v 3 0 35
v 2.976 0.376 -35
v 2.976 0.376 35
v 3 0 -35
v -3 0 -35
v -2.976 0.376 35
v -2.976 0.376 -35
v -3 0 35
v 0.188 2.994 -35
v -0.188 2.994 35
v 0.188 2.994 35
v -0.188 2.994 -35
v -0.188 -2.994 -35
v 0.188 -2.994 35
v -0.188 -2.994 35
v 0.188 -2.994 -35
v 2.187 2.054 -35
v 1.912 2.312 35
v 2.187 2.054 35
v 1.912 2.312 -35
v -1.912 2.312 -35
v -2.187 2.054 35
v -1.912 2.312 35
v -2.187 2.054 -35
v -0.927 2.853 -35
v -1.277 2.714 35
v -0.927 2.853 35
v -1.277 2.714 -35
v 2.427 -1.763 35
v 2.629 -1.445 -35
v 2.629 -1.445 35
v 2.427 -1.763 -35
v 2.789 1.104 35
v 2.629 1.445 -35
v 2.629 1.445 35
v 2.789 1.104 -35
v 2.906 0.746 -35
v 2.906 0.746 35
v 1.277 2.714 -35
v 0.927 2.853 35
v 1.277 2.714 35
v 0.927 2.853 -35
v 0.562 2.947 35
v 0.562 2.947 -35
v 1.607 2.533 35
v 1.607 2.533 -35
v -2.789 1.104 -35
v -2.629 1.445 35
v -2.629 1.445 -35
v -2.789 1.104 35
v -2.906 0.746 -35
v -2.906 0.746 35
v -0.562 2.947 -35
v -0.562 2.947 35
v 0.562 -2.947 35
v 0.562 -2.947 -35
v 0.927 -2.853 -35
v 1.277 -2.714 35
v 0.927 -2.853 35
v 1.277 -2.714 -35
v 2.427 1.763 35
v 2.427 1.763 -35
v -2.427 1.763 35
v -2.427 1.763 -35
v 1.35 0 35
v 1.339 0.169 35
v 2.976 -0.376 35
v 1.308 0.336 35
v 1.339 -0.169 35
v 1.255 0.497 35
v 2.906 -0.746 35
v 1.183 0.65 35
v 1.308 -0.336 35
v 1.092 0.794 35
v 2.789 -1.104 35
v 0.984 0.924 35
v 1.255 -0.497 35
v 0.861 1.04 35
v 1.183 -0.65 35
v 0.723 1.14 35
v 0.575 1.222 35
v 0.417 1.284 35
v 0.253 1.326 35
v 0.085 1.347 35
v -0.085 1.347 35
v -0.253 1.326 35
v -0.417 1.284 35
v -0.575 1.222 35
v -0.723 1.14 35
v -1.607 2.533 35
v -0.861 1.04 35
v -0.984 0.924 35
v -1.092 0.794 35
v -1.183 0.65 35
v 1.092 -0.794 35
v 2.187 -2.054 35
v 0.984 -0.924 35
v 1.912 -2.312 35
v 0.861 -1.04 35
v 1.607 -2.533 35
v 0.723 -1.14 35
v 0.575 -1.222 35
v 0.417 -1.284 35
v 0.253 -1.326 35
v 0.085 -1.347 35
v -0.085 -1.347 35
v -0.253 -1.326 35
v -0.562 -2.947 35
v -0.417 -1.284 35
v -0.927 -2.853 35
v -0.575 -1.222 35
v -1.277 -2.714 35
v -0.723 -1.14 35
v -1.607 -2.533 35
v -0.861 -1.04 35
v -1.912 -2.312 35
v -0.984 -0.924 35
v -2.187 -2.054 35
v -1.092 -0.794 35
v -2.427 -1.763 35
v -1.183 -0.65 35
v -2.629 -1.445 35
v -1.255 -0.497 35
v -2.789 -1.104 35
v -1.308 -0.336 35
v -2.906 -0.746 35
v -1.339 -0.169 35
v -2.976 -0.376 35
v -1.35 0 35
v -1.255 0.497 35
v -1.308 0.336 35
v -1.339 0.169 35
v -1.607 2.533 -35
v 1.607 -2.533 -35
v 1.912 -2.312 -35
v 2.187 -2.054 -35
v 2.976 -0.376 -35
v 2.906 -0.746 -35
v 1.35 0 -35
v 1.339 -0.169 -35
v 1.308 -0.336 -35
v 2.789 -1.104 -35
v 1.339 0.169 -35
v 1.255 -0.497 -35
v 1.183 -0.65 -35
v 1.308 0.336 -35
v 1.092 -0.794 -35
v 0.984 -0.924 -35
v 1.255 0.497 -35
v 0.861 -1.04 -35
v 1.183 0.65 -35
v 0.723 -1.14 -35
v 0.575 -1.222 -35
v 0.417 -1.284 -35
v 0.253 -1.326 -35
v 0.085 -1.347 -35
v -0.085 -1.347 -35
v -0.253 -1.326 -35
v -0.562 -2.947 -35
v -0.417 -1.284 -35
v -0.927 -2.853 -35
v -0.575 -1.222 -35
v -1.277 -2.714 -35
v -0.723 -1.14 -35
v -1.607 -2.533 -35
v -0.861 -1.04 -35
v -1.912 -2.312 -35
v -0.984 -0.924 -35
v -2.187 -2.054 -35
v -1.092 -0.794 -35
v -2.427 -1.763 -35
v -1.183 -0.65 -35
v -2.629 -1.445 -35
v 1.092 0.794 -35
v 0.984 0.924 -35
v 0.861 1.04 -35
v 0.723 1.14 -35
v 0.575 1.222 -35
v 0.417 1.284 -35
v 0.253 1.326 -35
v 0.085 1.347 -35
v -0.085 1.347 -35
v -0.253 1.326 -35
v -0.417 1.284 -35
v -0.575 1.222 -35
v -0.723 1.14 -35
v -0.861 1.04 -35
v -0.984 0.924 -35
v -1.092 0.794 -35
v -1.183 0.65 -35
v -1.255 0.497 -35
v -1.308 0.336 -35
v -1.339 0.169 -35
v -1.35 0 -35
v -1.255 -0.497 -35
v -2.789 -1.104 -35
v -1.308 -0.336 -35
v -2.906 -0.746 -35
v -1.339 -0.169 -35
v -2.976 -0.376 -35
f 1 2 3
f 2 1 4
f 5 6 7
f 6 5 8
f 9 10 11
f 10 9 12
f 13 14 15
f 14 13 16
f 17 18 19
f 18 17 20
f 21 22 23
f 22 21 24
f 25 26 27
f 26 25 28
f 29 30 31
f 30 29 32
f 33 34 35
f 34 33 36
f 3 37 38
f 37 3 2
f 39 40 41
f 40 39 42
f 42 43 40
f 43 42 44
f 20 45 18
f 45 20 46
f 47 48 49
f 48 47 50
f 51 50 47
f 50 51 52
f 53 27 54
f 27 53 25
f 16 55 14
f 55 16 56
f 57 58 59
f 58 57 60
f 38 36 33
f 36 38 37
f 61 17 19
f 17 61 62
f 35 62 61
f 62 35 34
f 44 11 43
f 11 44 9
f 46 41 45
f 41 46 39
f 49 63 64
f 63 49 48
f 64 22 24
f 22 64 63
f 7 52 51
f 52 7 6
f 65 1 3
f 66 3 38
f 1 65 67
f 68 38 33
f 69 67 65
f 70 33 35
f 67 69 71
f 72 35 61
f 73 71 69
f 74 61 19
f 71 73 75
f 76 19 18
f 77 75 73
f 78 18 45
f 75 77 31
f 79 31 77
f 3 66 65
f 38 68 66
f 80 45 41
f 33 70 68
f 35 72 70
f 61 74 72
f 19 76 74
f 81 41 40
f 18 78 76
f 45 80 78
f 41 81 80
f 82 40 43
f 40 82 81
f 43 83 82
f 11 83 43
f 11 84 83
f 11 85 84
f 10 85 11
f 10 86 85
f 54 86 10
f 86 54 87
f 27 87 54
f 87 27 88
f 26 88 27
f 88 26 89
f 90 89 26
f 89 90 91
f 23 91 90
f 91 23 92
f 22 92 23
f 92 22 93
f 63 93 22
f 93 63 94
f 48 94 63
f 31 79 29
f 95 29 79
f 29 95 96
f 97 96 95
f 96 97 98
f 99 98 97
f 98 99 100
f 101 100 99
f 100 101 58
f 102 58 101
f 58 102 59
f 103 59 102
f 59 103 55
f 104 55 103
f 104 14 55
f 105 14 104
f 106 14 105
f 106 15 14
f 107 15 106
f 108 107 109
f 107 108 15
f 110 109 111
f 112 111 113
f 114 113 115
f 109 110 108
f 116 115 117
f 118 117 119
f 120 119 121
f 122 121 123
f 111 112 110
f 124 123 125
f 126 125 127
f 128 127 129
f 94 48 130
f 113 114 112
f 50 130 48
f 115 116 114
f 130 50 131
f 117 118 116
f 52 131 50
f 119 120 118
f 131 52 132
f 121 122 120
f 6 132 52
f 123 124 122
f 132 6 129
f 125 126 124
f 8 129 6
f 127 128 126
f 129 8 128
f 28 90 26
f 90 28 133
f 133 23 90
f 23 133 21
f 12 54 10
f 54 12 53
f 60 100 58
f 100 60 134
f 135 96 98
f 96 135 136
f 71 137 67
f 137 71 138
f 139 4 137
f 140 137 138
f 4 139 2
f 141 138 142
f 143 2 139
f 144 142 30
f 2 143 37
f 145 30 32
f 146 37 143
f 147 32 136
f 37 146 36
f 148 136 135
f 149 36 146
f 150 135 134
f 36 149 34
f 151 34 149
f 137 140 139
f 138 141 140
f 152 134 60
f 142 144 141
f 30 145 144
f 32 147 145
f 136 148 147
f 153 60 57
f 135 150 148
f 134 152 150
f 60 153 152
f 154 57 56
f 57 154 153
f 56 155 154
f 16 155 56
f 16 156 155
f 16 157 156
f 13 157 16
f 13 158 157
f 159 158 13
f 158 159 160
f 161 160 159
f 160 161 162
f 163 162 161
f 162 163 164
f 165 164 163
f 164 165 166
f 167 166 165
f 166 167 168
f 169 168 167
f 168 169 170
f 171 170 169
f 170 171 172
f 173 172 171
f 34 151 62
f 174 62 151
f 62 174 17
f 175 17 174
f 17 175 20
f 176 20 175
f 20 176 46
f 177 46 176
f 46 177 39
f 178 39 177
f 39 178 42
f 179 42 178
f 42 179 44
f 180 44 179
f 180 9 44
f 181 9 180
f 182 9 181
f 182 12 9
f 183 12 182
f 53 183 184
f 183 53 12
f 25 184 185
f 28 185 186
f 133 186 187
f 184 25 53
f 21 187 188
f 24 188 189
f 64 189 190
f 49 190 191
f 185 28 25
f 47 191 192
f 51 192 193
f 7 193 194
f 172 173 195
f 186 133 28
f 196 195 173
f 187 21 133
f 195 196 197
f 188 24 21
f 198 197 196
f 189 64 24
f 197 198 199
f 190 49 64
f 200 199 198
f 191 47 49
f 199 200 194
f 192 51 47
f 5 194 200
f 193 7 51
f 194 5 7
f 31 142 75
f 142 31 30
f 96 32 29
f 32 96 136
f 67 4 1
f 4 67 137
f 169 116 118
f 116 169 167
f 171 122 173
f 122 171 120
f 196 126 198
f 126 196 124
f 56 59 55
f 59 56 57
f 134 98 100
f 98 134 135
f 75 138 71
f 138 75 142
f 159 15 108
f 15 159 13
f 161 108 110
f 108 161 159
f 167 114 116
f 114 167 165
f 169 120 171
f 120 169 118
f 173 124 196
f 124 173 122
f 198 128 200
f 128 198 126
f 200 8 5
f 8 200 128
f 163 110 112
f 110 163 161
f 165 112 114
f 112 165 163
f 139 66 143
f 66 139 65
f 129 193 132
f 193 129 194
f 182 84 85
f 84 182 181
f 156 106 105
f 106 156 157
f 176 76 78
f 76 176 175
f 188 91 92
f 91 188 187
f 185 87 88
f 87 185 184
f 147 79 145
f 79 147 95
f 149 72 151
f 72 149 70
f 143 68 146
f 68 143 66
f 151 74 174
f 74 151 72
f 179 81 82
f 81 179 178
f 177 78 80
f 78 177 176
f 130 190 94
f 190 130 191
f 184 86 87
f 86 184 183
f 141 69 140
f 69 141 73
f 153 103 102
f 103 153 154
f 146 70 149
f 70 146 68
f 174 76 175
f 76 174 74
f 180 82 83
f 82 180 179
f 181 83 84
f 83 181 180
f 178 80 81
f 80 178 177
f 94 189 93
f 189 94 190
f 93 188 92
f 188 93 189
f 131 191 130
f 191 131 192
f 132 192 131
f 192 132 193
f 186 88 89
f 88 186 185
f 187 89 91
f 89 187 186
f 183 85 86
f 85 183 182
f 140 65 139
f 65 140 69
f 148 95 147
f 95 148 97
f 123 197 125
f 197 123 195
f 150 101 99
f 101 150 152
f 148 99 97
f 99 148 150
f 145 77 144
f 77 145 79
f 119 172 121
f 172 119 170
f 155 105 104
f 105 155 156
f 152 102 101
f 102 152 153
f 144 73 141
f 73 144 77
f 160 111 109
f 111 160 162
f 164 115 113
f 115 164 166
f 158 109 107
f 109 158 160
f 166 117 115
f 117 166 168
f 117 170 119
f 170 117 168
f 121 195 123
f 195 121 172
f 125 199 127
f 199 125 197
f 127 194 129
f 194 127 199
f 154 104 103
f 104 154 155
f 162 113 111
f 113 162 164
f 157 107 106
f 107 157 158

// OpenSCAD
$fn = 50;


difference() {
	union() {
		translate(v = [0, 0, -35.0000000000]) {
			cylinder(h = 70, r = 3.0000000000);
		}
	}
	union() {
		translate(v = [0, 0, -100.0000000000]) {
			cylinder(h = 200, r = 1.3500000000);
		}
	}
}
